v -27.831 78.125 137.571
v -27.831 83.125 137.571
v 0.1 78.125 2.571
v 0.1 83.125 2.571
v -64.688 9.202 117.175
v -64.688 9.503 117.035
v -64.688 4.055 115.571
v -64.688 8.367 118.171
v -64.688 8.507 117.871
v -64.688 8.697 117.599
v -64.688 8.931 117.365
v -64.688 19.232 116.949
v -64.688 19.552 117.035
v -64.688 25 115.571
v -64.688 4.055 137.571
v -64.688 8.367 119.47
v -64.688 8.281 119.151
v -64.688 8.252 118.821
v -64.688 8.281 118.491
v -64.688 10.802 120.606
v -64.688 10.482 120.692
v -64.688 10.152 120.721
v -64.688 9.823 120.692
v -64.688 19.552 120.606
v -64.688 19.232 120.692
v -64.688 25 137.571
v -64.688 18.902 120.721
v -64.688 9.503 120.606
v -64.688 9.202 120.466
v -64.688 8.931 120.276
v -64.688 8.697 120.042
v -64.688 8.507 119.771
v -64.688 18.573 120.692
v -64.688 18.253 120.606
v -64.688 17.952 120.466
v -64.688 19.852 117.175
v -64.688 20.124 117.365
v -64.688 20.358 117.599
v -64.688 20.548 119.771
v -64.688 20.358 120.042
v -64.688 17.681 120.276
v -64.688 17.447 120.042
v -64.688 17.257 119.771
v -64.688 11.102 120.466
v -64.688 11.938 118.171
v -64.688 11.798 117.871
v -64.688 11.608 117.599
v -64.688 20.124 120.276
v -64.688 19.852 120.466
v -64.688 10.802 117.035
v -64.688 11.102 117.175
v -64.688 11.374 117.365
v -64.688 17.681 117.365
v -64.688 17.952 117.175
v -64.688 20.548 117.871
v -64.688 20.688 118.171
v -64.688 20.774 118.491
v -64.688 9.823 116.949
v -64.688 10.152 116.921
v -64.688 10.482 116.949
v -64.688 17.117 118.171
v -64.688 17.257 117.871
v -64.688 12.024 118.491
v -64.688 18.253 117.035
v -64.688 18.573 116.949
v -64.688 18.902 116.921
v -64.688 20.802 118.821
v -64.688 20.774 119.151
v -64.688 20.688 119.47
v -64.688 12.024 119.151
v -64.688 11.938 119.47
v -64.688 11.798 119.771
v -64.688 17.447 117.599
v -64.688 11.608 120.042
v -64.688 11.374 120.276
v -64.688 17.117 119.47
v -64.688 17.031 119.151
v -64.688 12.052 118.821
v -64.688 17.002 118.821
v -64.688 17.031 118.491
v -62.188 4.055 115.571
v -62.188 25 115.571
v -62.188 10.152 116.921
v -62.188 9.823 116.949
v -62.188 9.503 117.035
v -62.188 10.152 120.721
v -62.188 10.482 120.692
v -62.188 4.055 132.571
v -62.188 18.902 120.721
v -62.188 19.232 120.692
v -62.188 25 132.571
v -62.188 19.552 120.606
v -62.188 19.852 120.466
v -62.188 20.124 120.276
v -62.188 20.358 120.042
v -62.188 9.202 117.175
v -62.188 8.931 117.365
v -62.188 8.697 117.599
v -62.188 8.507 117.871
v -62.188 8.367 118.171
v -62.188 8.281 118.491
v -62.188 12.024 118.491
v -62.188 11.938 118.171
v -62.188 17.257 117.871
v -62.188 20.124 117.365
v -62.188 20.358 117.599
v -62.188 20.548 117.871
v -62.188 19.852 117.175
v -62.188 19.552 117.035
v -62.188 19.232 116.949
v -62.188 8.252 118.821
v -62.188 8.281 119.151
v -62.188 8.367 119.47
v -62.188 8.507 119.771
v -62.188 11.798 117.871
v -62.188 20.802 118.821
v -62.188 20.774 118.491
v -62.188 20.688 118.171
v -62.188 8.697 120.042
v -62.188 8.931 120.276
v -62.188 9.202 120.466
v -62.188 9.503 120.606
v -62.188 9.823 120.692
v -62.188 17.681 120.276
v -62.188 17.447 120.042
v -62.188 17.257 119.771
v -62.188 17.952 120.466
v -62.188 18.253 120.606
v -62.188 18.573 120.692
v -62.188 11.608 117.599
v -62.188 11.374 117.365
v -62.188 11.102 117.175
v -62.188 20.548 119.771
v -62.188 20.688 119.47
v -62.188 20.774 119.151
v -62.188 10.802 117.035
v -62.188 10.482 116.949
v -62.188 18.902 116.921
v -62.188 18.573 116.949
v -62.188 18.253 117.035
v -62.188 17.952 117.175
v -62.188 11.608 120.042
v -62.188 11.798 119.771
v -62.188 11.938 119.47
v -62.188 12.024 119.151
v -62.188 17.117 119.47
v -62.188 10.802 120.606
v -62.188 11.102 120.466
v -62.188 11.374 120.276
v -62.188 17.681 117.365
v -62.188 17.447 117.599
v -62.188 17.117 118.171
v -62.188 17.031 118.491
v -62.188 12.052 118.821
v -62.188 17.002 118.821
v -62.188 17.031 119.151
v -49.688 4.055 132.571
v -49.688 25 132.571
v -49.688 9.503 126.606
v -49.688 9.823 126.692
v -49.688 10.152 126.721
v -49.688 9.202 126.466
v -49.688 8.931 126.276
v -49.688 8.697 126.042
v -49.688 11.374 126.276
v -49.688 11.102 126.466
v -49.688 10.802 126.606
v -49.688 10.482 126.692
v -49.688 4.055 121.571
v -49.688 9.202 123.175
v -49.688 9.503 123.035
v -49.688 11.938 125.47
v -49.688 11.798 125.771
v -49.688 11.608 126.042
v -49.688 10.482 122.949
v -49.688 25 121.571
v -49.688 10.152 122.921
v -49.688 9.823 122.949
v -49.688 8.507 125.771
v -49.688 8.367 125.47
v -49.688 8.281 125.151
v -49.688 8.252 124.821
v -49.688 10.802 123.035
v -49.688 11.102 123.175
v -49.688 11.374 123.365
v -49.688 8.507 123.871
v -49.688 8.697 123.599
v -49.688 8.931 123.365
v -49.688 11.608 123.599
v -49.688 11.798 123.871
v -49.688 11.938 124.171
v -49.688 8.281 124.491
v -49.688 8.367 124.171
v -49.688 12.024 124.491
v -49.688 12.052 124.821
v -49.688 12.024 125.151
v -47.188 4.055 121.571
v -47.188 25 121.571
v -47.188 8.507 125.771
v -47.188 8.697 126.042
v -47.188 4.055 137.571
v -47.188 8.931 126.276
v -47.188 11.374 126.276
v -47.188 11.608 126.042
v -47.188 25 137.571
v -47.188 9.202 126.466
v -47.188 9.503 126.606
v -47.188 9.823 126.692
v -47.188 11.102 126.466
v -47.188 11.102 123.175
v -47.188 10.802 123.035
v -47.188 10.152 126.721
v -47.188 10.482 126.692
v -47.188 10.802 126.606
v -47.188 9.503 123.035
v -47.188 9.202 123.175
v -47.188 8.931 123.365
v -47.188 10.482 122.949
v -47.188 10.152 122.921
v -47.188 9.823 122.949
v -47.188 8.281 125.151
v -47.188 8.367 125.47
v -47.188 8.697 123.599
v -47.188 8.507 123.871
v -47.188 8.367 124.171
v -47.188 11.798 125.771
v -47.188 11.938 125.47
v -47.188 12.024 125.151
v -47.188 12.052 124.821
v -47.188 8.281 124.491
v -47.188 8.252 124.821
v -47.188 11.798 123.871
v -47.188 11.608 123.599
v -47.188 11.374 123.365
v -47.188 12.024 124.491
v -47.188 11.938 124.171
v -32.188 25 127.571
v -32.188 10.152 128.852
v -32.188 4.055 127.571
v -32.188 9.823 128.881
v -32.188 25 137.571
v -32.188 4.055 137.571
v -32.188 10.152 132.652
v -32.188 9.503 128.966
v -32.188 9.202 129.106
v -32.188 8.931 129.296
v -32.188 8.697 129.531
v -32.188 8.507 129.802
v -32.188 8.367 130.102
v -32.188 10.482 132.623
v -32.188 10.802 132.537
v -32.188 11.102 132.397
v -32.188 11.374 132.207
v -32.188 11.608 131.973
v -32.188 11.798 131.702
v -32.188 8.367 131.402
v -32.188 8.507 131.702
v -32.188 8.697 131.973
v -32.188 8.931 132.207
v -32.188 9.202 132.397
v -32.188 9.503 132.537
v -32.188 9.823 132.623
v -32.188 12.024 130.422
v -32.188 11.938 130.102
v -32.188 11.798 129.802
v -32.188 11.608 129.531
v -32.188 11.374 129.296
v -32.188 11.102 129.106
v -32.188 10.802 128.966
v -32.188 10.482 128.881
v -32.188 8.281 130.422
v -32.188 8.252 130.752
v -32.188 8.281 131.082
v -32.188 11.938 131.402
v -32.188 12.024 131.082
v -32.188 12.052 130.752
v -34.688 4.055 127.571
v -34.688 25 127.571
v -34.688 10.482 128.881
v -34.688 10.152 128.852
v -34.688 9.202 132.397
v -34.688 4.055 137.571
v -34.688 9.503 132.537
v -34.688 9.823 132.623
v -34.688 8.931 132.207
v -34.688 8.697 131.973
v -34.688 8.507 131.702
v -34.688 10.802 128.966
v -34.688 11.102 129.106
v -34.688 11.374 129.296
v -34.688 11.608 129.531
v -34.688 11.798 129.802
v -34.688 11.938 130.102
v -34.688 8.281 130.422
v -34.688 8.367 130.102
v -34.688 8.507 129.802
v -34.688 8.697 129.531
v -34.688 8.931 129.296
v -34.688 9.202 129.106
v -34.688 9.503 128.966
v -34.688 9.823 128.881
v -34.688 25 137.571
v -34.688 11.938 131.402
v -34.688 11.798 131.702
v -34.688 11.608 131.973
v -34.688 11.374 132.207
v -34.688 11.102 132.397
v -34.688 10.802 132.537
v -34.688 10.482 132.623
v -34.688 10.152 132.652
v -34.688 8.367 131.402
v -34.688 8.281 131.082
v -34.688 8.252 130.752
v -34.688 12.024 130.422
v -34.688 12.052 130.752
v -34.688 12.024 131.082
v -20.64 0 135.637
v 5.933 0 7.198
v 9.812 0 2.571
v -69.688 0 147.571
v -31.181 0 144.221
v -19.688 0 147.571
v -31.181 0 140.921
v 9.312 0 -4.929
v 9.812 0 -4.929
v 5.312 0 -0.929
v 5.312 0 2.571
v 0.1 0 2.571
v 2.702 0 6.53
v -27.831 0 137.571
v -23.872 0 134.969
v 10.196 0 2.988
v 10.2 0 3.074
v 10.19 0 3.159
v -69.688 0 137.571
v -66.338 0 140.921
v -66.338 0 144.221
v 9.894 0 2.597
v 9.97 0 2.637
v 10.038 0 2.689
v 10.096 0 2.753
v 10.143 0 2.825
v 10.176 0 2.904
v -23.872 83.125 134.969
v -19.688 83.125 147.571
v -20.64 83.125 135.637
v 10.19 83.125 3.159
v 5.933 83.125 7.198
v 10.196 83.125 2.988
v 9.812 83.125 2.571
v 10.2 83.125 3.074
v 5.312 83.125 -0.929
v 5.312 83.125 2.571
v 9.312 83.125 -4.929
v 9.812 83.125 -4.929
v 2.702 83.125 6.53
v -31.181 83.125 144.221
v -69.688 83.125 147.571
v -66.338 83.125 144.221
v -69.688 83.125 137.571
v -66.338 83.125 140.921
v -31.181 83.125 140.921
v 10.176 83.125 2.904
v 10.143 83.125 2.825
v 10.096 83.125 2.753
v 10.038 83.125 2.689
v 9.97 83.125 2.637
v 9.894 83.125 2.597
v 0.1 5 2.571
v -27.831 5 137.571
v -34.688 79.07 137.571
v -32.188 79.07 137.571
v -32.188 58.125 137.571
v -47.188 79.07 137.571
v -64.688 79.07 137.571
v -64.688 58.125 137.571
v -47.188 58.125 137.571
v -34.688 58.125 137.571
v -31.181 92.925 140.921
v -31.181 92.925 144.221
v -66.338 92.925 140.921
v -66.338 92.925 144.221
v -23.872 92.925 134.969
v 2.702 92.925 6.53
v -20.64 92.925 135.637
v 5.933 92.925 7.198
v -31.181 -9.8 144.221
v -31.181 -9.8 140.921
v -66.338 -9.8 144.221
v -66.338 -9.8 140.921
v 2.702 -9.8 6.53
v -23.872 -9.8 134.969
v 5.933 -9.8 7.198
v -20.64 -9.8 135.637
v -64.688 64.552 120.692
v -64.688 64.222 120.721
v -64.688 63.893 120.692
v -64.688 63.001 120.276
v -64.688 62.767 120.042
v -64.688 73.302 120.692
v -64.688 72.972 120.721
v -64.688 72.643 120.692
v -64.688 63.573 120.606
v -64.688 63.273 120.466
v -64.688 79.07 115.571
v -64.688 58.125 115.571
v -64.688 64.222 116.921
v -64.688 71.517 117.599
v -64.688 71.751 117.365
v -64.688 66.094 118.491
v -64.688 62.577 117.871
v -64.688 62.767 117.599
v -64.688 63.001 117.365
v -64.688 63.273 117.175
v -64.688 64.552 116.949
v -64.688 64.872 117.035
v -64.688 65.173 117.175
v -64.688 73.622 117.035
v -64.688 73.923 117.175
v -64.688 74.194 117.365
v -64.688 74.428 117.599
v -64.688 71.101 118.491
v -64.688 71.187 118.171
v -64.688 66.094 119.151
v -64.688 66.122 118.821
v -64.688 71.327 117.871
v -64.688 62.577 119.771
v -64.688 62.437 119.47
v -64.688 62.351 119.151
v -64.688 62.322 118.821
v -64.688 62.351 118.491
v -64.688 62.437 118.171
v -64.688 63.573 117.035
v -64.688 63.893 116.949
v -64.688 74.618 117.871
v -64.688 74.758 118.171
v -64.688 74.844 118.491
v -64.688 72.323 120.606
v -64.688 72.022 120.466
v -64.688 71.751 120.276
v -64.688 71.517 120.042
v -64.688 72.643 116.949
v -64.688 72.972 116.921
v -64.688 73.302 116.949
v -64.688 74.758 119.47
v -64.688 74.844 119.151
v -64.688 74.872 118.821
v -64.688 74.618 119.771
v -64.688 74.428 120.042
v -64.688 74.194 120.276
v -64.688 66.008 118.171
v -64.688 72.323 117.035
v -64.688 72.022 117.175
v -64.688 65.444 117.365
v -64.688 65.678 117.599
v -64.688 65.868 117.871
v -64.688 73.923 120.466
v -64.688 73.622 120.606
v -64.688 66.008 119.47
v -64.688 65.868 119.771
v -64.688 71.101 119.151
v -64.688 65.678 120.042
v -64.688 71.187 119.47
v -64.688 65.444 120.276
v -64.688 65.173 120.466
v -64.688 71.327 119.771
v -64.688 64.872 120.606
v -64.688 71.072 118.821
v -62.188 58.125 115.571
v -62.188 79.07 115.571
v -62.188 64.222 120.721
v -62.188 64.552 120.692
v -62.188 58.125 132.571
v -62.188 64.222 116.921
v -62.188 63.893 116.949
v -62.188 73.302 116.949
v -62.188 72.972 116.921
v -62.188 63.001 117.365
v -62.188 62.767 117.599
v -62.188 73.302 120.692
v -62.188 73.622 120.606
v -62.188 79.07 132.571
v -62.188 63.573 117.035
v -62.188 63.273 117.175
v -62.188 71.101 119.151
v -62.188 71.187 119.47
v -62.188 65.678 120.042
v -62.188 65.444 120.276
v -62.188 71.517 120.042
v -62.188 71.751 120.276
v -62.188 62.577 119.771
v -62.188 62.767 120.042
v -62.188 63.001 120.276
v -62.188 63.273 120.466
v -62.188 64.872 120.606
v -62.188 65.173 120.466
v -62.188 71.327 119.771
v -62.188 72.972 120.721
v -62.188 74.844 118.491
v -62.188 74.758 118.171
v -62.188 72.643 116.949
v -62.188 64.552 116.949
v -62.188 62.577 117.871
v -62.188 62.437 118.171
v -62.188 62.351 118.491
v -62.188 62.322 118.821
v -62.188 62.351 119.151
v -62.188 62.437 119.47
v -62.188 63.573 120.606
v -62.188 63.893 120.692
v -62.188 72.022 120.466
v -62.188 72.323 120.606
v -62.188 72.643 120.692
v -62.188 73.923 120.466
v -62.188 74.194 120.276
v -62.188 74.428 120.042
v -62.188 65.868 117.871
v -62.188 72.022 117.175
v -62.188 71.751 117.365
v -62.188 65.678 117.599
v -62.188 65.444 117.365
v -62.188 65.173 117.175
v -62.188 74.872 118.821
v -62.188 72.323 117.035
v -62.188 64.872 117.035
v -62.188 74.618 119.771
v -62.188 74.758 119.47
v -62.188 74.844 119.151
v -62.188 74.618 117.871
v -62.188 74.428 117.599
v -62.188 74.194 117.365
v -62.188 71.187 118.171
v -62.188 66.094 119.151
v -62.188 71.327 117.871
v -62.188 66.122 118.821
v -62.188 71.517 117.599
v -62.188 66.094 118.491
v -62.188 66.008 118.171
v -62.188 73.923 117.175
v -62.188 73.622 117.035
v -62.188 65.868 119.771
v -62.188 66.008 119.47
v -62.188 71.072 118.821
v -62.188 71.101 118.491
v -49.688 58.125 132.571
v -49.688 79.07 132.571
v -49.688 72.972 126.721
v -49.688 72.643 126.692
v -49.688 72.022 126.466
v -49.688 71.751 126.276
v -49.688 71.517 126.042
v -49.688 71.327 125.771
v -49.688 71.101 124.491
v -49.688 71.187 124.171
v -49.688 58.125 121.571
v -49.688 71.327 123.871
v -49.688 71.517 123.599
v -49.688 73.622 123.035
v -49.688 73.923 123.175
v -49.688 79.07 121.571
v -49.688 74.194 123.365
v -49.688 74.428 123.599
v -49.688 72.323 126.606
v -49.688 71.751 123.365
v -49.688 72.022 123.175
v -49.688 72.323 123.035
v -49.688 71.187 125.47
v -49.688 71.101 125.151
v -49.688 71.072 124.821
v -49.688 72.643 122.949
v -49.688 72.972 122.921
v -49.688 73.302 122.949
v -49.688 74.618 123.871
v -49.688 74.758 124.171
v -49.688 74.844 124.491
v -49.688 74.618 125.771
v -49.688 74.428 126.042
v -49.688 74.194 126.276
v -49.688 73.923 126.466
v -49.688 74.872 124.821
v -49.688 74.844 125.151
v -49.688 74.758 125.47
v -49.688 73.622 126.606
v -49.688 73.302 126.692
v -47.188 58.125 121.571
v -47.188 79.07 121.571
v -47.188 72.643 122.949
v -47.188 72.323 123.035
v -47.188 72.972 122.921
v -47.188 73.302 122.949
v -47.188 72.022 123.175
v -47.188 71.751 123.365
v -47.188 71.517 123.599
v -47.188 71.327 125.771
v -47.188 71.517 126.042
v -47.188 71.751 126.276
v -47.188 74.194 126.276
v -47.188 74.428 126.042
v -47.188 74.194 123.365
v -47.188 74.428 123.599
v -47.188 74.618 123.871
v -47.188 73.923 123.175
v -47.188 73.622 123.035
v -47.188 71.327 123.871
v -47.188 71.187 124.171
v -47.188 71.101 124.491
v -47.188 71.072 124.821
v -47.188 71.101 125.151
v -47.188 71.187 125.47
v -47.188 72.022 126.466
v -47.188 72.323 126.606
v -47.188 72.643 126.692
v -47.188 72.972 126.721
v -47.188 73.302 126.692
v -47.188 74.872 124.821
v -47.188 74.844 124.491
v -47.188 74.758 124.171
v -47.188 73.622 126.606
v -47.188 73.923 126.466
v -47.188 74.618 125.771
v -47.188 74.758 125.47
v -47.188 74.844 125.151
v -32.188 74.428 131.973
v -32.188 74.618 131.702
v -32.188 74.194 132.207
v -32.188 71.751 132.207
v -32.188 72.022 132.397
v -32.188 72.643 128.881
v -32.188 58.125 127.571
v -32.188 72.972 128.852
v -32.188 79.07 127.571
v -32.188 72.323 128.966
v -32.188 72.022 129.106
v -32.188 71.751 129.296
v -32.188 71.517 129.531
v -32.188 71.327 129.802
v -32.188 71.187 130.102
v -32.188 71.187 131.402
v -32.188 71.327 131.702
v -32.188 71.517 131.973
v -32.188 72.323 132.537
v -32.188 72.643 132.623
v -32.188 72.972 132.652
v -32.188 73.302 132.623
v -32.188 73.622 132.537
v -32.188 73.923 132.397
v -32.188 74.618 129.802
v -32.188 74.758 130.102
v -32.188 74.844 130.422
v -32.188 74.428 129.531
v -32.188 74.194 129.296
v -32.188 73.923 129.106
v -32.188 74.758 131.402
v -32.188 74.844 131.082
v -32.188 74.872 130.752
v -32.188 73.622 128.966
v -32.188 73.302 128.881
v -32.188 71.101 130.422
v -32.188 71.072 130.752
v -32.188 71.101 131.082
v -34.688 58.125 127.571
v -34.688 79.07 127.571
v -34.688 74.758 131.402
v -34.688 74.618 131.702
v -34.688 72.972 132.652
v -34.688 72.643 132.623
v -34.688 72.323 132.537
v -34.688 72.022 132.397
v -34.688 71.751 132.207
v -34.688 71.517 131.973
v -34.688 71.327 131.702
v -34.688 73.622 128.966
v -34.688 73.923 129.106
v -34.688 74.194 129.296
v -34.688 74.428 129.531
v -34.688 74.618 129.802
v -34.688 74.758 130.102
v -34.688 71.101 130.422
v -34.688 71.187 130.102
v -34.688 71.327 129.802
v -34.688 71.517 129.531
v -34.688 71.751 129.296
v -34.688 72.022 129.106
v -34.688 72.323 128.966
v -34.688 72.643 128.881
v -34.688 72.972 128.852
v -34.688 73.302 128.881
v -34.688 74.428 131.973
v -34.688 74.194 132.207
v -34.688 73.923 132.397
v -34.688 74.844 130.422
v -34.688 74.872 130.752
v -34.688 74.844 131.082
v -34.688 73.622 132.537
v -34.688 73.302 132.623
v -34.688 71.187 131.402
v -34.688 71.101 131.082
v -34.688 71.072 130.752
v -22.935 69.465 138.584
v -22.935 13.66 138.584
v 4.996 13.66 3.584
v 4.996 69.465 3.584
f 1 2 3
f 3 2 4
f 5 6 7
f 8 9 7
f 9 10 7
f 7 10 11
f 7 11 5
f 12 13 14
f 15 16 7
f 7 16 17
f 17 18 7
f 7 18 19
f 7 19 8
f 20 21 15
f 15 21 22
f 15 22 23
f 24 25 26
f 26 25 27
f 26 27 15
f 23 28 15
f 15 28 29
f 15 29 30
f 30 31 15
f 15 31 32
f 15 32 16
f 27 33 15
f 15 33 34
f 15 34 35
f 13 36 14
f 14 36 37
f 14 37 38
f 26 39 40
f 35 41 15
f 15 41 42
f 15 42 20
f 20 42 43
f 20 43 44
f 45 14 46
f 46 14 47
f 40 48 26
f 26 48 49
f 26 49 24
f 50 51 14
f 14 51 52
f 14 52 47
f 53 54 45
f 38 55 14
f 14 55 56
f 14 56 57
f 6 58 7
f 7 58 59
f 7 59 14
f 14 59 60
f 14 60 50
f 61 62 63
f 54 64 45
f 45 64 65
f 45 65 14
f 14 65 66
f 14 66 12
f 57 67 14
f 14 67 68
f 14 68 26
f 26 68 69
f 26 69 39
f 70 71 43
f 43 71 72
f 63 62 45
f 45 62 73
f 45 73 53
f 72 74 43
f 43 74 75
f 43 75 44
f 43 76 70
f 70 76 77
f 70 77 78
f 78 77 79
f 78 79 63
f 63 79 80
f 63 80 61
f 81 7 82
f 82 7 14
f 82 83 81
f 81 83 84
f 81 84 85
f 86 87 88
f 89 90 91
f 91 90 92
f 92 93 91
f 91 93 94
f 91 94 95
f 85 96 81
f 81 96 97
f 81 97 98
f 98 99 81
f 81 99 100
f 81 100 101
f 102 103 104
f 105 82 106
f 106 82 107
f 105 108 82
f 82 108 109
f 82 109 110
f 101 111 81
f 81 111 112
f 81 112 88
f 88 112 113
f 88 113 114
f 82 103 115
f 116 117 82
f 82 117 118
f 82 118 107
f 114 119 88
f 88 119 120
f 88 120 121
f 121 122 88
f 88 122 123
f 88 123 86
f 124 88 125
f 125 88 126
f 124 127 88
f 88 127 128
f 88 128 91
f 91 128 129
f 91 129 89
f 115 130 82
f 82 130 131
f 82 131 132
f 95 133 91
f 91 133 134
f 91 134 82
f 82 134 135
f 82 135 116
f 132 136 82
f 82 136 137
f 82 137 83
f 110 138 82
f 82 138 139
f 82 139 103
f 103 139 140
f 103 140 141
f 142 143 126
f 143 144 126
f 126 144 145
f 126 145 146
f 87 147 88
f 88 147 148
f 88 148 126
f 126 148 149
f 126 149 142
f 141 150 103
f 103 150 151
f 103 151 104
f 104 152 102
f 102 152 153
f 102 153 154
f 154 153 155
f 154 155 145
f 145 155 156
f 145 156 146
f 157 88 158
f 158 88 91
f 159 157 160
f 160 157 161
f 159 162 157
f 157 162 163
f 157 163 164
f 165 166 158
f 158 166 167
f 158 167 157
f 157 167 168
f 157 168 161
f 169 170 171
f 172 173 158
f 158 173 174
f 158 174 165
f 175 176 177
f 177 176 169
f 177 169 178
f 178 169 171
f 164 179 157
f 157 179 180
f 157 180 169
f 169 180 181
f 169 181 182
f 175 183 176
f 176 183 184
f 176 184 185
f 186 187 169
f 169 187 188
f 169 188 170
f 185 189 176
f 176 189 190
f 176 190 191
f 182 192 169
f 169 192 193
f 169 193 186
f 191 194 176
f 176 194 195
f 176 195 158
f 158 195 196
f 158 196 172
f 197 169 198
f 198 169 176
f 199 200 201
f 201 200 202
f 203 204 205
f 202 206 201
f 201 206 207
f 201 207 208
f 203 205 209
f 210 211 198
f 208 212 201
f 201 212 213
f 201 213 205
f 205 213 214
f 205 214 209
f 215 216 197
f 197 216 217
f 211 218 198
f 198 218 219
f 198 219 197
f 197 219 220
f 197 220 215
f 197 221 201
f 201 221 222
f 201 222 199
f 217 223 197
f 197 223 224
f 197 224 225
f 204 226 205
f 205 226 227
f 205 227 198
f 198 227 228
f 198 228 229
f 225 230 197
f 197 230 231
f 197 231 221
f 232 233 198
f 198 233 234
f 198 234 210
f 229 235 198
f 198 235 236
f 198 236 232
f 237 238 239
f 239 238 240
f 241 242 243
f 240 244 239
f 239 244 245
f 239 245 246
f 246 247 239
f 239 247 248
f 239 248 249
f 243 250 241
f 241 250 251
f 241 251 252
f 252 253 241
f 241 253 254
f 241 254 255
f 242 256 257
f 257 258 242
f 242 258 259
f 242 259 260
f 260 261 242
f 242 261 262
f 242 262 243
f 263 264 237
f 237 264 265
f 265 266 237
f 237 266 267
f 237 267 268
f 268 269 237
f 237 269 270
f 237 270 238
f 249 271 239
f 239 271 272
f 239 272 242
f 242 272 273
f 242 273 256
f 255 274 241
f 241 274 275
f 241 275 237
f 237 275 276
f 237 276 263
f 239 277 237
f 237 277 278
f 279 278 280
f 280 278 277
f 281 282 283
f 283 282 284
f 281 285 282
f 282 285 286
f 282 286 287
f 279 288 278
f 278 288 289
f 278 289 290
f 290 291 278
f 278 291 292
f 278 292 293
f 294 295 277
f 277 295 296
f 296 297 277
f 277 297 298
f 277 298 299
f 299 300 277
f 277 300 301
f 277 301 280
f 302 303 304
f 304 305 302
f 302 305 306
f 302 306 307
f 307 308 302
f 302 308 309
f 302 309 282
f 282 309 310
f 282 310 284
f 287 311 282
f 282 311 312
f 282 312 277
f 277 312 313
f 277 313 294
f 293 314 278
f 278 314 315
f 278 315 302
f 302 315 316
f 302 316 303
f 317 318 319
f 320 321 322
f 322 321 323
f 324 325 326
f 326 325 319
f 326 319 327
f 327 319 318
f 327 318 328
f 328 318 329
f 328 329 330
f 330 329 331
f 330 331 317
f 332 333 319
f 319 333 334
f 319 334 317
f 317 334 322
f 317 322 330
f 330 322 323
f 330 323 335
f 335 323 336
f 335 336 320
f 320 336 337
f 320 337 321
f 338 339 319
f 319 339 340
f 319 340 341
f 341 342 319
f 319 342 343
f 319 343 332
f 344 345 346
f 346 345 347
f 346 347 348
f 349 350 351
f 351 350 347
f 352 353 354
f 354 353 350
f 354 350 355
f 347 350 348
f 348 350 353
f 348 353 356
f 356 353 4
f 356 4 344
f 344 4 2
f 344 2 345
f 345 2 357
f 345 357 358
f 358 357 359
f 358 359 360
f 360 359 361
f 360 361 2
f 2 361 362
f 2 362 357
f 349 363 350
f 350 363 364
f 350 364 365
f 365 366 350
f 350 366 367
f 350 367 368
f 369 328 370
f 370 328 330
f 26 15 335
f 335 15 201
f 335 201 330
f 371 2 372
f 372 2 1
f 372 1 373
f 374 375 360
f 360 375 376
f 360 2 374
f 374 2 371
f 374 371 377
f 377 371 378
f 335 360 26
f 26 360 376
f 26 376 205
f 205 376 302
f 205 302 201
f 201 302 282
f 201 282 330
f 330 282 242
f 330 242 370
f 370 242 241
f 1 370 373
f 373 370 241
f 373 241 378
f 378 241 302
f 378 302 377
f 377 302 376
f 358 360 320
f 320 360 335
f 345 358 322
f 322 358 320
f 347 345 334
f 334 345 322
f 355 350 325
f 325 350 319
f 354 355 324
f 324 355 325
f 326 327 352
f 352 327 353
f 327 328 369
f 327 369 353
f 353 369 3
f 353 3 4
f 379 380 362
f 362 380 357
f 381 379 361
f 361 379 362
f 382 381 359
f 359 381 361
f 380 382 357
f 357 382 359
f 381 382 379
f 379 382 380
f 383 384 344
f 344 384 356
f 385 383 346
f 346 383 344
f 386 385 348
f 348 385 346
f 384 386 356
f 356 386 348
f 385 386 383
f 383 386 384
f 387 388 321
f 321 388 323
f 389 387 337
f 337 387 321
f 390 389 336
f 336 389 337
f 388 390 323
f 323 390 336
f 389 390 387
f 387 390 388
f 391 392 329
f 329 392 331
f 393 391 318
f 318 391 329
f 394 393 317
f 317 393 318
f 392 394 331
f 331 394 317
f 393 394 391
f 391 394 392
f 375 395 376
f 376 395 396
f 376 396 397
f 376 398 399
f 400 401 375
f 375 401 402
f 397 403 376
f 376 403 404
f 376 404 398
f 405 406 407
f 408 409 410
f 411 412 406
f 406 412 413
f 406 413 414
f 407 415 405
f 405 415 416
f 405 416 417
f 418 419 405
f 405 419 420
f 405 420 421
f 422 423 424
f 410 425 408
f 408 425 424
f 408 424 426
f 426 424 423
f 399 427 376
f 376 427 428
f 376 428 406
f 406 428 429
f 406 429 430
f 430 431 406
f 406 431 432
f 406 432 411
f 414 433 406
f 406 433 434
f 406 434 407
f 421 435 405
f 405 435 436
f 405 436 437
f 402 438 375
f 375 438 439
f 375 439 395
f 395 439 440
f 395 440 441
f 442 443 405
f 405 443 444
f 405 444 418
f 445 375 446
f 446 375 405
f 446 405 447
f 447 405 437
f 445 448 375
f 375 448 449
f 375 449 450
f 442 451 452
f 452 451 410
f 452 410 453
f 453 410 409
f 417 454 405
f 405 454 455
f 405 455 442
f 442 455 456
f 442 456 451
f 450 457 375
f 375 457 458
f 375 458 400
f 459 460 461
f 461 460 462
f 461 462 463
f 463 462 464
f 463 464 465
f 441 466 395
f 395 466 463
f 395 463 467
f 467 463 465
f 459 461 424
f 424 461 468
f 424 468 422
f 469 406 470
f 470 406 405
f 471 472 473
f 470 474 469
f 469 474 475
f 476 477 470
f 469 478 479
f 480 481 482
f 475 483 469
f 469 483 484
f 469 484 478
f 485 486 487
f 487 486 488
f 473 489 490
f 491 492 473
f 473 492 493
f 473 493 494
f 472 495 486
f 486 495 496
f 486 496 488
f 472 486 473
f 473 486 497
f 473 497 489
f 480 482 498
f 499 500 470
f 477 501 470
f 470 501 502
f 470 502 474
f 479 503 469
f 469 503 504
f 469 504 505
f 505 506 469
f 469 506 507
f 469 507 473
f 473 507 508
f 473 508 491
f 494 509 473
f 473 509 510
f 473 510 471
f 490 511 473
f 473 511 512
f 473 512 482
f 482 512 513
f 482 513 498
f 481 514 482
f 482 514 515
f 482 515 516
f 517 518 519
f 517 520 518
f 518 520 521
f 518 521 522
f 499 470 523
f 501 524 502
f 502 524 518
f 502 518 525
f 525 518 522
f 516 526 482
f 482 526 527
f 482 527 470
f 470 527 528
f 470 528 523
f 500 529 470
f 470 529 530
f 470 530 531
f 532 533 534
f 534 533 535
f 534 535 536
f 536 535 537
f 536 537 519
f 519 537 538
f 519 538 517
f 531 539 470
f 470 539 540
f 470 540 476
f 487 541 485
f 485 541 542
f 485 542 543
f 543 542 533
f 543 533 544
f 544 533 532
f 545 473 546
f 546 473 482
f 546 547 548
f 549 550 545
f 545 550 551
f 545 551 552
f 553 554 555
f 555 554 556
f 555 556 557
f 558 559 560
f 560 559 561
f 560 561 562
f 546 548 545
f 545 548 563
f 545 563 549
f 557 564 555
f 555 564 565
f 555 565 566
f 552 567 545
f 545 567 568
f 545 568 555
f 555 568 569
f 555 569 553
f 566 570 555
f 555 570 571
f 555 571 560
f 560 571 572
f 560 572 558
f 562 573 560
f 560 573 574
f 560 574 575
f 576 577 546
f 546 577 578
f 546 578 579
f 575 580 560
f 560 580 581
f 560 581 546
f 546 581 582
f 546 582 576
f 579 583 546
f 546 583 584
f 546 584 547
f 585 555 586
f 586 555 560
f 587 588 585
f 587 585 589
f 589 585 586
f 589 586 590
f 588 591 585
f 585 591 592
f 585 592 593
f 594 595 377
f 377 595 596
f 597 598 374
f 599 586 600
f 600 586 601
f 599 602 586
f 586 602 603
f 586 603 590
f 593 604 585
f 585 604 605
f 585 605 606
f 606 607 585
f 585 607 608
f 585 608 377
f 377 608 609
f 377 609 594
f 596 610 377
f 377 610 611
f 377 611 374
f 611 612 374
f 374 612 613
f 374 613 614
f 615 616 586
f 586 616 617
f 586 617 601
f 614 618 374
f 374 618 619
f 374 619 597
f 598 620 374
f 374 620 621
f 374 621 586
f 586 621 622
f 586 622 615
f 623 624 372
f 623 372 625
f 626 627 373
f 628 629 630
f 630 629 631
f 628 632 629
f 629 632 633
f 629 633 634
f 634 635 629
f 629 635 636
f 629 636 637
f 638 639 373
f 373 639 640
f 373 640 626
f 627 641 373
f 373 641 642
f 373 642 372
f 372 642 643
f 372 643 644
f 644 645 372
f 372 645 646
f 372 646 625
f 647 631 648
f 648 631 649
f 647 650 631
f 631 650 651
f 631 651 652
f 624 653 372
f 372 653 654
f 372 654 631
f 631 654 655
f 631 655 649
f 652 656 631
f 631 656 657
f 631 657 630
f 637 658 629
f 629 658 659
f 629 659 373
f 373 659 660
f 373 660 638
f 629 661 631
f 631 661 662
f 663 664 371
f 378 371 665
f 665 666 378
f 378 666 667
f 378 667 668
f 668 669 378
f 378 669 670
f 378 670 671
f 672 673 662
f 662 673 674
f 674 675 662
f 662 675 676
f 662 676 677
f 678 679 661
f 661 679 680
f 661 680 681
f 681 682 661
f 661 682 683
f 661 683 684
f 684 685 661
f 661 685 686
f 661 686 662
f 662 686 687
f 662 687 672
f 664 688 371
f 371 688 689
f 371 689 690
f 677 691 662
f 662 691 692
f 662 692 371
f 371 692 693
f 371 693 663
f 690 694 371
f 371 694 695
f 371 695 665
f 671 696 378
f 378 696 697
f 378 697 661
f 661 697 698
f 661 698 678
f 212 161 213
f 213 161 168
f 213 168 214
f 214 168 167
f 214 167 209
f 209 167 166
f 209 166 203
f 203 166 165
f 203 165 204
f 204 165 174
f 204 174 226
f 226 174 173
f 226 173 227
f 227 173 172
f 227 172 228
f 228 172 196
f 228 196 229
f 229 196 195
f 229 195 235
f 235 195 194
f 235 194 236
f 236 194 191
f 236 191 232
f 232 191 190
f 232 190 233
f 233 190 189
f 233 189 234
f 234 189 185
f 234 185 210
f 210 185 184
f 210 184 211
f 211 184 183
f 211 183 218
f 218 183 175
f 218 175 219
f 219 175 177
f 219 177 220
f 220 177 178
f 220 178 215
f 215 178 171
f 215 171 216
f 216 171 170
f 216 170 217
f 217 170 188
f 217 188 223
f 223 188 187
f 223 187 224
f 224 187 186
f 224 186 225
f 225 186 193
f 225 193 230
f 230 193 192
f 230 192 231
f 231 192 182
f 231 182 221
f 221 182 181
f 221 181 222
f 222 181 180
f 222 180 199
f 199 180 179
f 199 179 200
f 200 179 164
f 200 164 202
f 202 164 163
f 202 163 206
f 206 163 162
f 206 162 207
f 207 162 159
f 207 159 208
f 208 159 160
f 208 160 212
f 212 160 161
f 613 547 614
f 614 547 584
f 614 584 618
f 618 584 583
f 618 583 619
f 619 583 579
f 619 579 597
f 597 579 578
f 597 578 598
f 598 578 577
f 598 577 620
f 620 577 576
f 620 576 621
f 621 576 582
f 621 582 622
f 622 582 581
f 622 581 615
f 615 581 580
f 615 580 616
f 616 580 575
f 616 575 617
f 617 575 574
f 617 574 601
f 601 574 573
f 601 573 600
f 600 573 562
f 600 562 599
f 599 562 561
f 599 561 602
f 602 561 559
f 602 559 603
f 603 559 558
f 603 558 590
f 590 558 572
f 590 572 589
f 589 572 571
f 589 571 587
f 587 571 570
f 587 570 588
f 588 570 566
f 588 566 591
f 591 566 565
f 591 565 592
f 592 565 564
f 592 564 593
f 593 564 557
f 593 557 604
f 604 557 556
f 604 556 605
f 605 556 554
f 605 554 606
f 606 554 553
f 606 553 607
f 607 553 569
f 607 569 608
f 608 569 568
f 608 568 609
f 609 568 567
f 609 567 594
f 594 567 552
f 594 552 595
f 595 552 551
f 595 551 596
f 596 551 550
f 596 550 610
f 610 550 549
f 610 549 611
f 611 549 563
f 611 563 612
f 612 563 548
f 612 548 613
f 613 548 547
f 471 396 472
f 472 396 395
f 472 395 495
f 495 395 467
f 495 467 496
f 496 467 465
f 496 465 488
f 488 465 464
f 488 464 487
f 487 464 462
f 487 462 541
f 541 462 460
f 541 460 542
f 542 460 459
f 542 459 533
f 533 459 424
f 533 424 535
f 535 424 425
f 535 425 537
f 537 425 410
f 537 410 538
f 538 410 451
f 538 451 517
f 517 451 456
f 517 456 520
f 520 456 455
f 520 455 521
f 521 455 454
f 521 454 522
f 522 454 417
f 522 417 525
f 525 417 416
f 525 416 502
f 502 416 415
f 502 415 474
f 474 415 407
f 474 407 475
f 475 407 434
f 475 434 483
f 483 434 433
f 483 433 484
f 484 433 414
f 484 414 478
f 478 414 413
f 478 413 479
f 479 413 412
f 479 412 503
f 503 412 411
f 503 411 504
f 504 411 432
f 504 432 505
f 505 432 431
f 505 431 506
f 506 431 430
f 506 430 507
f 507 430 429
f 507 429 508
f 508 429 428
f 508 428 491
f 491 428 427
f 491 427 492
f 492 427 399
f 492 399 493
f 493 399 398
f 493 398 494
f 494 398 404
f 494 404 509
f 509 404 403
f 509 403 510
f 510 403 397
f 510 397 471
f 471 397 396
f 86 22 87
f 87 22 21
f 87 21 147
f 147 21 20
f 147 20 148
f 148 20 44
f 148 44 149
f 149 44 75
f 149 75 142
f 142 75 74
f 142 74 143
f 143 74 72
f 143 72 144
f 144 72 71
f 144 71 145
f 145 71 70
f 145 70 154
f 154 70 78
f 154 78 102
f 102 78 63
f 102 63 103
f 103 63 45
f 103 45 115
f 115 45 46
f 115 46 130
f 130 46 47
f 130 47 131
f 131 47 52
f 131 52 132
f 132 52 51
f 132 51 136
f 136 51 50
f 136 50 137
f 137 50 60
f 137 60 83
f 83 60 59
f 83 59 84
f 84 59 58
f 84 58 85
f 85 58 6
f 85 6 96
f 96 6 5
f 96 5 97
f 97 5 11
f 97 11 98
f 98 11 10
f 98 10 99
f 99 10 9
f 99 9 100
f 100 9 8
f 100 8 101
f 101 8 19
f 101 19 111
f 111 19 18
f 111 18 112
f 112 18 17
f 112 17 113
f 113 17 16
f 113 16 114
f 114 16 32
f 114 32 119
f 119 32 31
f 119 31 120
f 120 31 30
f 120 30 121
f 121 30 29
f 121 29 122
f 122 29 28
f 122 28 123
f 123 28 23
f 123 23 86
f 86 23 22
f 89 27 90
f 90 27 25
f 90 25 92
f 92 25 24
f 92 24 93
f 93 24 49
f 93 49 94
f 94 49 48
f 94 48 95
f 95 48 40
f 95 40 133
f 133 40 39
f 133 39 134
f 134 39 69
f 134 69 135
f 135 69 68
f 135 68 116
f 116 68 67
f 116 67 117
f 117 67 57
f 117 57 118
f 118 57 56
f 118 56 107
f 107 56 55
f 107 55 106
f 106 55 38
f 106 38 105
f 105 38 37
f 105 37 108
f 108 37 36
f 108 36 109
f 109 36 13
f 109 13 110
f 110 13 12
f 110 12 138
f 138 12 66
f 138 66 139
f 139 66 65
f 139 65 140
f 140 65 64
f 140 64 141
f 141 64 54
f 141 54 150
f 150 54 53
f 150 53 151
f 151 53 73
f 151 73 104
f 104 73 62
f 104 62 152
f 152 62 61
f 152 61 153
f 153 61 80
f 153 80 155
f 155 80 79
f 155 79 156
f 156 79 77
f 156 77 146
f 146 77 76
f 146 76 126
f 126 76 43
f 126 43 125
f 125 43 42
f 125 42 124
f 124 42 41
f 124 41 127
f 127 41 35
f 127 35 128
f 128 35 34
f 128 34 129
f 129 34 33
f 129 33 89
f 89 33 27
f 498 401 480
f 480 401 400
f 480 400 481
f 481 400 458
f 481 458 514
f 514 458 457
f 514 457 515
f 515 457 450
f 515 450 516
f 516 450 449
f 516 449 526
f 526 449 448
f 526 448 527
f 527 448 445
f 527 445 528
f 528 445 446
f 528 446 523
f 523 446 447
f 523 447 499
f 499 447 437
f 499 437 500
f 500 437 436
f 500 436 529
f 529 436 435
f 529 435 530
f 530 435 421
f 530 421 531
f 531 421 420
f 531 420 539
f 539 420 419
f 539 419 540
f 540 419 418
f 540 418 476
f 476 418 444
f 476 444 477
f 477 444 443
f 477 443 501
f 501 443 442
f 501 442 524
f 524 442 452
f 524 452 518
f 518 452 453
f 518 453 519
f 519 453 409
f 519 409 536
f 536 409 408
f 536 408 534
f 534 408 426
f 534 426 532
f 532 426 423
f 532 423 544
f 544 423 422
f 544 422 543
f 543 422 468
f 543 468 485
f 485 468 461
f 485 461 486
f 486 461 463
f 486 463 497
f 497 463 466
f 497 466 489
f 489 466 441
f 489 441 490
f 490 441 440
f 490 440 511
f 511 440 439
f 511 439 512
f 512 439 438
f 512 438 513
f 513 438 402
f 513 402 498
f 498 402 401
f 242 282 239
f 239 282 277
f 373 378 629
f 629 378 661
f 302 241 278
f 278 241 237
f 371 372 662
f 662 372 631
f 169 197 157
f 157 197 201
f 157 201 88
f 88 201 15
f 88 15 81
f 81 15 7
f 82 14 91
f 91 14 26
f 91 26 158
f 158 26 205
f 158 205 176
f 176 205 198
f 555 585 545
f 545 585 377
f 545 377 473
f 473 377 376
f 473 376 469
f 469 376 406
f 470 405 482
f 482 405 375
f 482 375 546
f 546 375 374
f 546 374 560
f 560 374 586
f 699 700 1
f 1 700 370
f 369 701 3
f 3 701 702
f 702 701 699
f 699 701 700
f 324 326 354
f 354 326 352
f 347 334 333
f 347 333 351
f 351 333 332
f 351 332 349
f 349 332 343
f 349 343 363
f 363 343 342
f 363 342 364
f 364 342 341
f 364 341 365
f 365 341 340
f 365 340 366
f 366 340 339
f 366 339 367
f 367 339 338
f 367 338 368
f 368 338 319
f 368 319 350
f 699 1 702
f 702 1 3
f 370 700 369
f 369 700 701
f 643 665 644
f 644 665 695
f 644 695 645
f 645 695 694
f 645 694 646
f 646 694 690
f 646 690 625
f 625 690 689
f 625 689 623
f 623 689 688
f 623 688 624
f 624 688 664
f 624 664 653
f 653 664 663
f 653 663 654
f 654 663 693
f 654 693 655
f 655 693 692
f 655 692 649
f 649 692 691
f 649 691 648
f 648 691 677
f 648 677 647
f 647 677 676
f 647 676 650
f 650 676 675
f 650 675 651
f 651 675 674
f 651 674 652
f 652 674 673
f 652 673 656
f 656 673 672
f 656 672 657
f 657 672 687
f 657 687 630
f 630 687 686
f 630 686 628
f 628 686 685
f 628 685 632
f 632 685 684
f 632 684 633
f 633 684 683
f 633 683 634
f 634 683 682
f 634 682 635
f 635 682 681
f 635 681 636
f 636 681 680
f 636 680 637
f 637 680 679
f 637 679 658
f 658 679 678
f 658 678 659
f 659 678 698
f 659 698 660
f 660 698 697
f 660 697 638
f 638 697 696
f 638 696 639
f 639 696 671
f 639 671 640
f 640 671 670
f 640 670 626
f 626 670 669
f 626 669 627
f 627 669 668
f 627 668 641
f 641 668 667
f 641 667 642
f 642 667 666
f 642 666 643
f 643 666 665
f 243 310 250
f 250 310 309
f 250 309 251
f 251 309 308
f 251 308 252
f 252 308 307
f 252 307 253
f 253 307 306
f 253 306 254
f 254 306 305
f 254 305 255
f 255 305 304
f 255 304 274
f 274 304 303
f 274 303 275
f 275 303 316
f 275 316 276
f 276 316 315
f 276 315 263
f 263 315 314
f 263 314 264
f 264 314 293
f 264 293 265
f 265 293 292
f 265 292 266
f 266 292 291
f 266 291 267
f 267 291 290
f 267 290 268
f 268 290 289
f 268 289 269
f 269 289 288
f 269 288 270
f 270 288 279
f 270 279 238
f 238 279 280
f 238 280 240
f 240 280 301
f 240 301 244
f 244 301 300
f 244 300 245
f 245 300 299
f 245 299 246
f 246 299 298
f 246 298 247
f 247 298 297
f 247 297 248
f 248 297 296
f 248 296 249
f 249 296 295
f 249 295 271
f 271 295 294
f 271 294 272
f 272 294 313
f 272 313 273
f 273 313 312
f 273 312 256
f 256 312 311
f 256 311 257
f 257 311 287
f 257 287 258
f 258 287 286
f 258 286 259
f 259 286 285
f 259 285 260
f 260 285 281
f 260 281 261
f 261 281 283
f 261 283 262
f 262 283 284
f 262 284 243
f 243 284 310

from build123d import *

# Parameters (mm, degrees)
BOSS_EXTRUDE1_DEPTH = 83.125
SKETCH2_W           = 35.157177314
SKETCH2_H           = 3.3
BOSS_EXTRUDE2_DEPTH = 9.8
SKETCH7_W           = 2.5
SKETCH7_H           = 10
BOSS_EXTRUDE4_DEPTH = 83.125
CUT_EXTRUDE5_REACH  = 186.424
SKETCH8_R           = 1.9
CUT_EXTRUDE6_REACH  = 191.835
SKETCH9_R           = 1.9
CUT_EXTRUDE9_REACH  = 182.103
SKETCH12_R          = 1.9
CUT_EXTRUDE7_REACH  = 191.835
SKETCH10_W          = 33.125
SKETCH10_H          = 22
SKETCH10_W_2        = 4.055
SKETCH11_W          = 53.125
SKETCH11_H          = 124.429937858
SKETCH11_H_2        = 13.429202889
CUT_EXTRUDE8_DEPTH  = 5
CHAMFER1_SIZE       = 4
FILLET1_R           = 0.5
CHAMFER2_SIZE       = 10
CHAMFER2_SIZE_2     = 5.773502692


with BuildPart() as part:
    # Sketch1 → Boss-Extrude1 (new body)
    with BuildSketch(Plane(origin=(0, 0, 0), x_dir=(-1, 0, 0), z_dir=(0, 1, 0))):
        Polygon((19.688093764, 147.570616058), (-10.311906236, 2.570616058), (-9.811906236, 2.570616058), (-9.811906236, -4.929383942), (-5.311906236, -4.929383942), (-5.311906236, 2.570616058), (-0.100118033, 2.570616058), (27.83091645, 137.570616058), (69.688093764, 137.570616058), (69.688093764, 147.570616058), align=None)
    extrude(amount=BOSS_EXTRUDE1_DEPTH)

    # Sketch2 → Boss-Extrude2 (add)
    with BuildSketch(Plane(origin=(0, 83.125, 0), x_dir=(-1, 0, 0), z_dir=(0, 1, 0))):
        Polygon((23.871665271, 134.968822427), (-2.701911664, 6.529867237), (-5.933471049, 7.198465731), (20.640105887, 135.63742092), align=None)
        with Locations((48.759505107, 142.570616058)):
            Rectangle(SKETCH2_W, SKETCH2_H)
    boss_extrude2 = extrude(amount=BOSS_EXTRUDE2_DEPTH)

    # Mirror1: Boss-Extrude2 across plane
    add(boss_extrude2.mirror(Plane.ZX.offset(41.5625)))

    # Sketch7 → Boss-Extrude4 (add)
    with BuildSketch(Plane(origin=(0, 83.125, 0), x_dir=(-1, 0, 0), z_dir=(0, 1, 0))):
        Polygon((64.688093764, 137.570616058), (47.188093764, 137.570616058), (47.188093764, 121.570616058), (49.688093764, 121.570616058), (49.688093764, 132.570616058), (62.188093764, 132.570616058), (62.188093764, 115.570616058), (64.688093764, 115.570616058), align=None)
        with Locations((33.438093764, 132.570616058)):
            Rectangle(SKETCH7_W, SKETCH7_H)
    extrude(amount=-BOSS_EXTRUDE4_DEPTH)

    # Sketch8 → Cut-Extrude5 (cut, up to next)
    with BuildSketch(Plane(origin=(-49.688093764, 0, 0), x_dir=(0, -1, 0), z_dir=(-1, 0, 0)), mode=Mode.PRIVATE) as cut_extrude5_sk1:
        with Locations(Location((-72.9725, 124.820616058, 0), (0, 0, 90))):
            Circle(SKETCH8_R)
    cut_extrude5_tool1 = extrude(cut_extrude5_sk1.sketch, amount=-CUT_EXTRUDE5_REACH, mode=Mode.PRIVATE) & part.part
    # Sketch8 → Cut-Extrude5 (cut, up to next)
    with BuildSketch(Plane(origin=(-49.688093764, 0, 0), x_dir=(0, -1, 0), z_dir=(-1, 0, 0)), mode=Mode.PRIVATE) as cut_extrude5_sk2:
        with Locations(Location((-10.1525, 124.820616058, 0), (0, 0, 90))):
            Circle(SKETCH8_R)
    cut_extrude5_tool2 = extrude(cut_extrude5_sk2.sketch, amount=-CUT_EXTRUDE5_REACH, mode=Mode.PRIVATE) & part.part
    add(cut_extrude5_tool1.solids().sort_by_distance((-49.688094, 72.9725, 124.820616))[0], mode=Mode.SUBTRACT)
    add(cut_extrude5_tool2.solids().sort_by_distance((-49.688094, 10.1525, 124.820616))[0], mode=Mode.SUBTRACT)

    # Sketch9 → Cut-Extrude6 (cut, up to next)
    with BuildSketch(Plane(origin=(-64.688093764, 0, 0), x_dir=(0, -1, 0), z_dir=(-1, 0, 0)), mode=Mode.PRIVATE) as cut_extrude6_sk1:
        with Locations(Location((-72.9725, 118.820616058, 0), (0, 0, 90))):
            Circle(SKETCH9_R)
    cut_extrude6_tool1 = extrude(cut_extrude6_sk1.sketch, amount=-CUT_EXTRUDE6_REACH, mode=Mode.PRIVATE) & part.part
    # Sketch9 → Cut-Extrude6 (cut, up to next)
    with BuildSketch(Plane(origin=(-64.688093764, 0, 0), x_dir=(0, -1, 0), z_dir=(-1, 0, 0)), mode=Mode.PRIVATE) as cut_extrude6_sk2:
        with Locations(Location((-18.9025, 118.820616058, 0), (0, 0, 90))):
            Circle(SKETCH9_R)
    cut_extrude6_tool2 = extrude(cut_extrude6_sk2.sketch, amount=-CUT_EXTRUDE6_REACH, mode=Mode.PRIVATE) & part.part
    # Sketch9 → Cut-Extrude6 (cut, up to next)
    with BuildSketch(Plane(origin=(-64.688093764, 0, 0), x_dir=(0, -1, 0), z_dir=(-1, 0, 0)), mode=Mode.PRIVATE) as cut_extrude6_sk3:
        with Locations(Location((-10.1525, 118.820616058, 0), (0, 0, 90))):
            Circle(SKETCH9_R)
    cut_extrude6_tool3 = extrude(cut_extrude6_sk3.sketch, amount=-CUT_EXTRUDE6_REACH, mode=Mode.PRIVATE) & part.part
    # Sketch9 → Cut-Extrude6 (cut, up to next)
    with BuildSketch(Plane(origin=(-64.688093764, 0, 0), x_dir=(0, -1, 0), z_dir=(-1, 0, 0)), mode=Mode.PRIVATE) as cut_extrude6_sk4:
        with Locations(Location((-64.2225, 118.820616058, 0), (0, 0, 90))):
            Circle(SKETCH9_R)
    cut_extrude6_tool4 = extrude(cut_extrude6_sk4.sketch, amount=-CUT_EXTRUDE6_REACH, mode=Mode.PRIVATE) & part.part
    add(cut_extrude6_tool1.solids().sort_by_distance((-64.688094, 72.9725, 118.820616))[0], mode=Mode.SUBTRACT)
    add(cut_extrude6_tool2.solids().sort_by_distance((-64.688094, 18.9025, 118.820616))[0], mode=Mode.SUBTRACT)
    add(cut_extrude6_tool3.solids().sort_by_distance((-64.688094, 10.1525, 118.820616))[0], mode=Mode.SUBTRACT)
    add(cut_extrude6_tool4.solids().sort_by_distance((-64.688094, 64.2225, 118.820616))[0], mode=Mode.SUBTRACT)

    # Sketch12 → Cut-Extrude9 (cut, up to next)
    with BuildSketch(Plane(origin=(-34.688093764, 0, 0), x_dir=(0, -1, 0), z_dir=(-1, 0, 0)), mode=Mode.PRIVATE) as cut_extrude9_sk1:
        with Locations(Location((-72.9725, 130.751875225, 0), (0, 0, 90))):
            Circle(SKETCH12_R)
    cut_extrude9_tool1 = extrude(cut_extrude9_sk1.sketch, amount=-CUT_EXTRUDE9_REACH, mode=Mode.PRIVATE) & part.part
    # Sketch12 → Cut-Extrude9 (cut, up to next)
    with BuildSketch(Plane(origin=(-34.688093764, 0, 0), x_dir=(0, -1, 0), z_dir=(-1, 0, 0)), mode=Mode.PRIVATE) as cut_extrude9_sk2:
        with Locations(Location((-10.1525, 130.751875225, 0), (0, 0, 90))):
            Circle(SKETCH12_R)
    cut_extrude9_tool2 = extrude(cut_extrude9_sk2.sketch, amount=-CUT_EXTRUDE9_REACH, mode=Mode.PRIVATE) & part.part
    add(cut_extrude9_tool1.solids().sort_by_distance((-34.688094, 72.9725, 130.751875))[0], mode=Mode.SUBTRACT)
    add(cut_extrude9_tool2.solids().sort_by_distance((-34.688094, 10.1525, 130.751875))[0], mode=Mode.SUBTRACT)

    # Cut-Extrude7: up to this face of the body (flat: up to its plane)
    cut_extrude7_end = Plane(part.part.faces().sort_by_distance((-32.188093764, 41.5625, 132.621636181))[0])
    # Sketch10 → Cut-Extrude7 (cut, up to the picked face)
    with BuildSketch(Plane(origin=(-64.688093764, 0, 0), x_dir=(0, -1, 0), z_dir=(-1, 0, 0)), mode=Mode.PRIVATE) as cut_extrude7_sk1:
        with Locations((-41.5625, 126.570616058)):
            Rectangle(SKETCH10_W, SKETCH10_H)
    cut_extrude7_tool1 = split(extrude(cut_extrude7_sk1.sketch, amount=-CUT_EXTRUDE7_REACH, mode=Mode.PRIVATE), bisect_by=cut_extrude7_end, keep=Keep.BOTH, mode=Mode.PRIVATE)
    # Sketch10 → Cut-Extrude7 (cut, up to the picked face)
    with BuildSketch(Plane(origin=(-64.688093764, 0, 0), x_dir=(0, -1, 0), z_dir=(-1, 0, 0)), mode=Mode.PRIVATE) as cut_extrude7_sk2:
        with Locations((-81.0975, 126.570616058)):
            Rectangle(SKETCH10_W_2, SKETCH10_H)
    cut_extrude7_tool2 = split(extrude(cut_extrude7_sk2.sketch, amount=-CUT_EXTRUDE7_REACH, mode=Mode.PRIVATE), bisect_by=cut_extrude7_end, keep=Keep.BOTH, mode=Mode.PRIVATE)
    # Sketch10 → Cut-Extrude7 (cut, up to the picked face)
    with BuildSketch(Plane(origin=(-64.688093764, 0, 0), x_dir=(0, -1, 0), z_dir=(-1, 0, 0)), mode=Mode.PRIVATE) as cut_extrude7_sk3:
        with Locations((-2.0275, 126.570616058)):
            Rectangle(SKETCH10_W_2, SKETCH10_H)
    cut_extrude7_tool3 = split(extrude(cut_extrude7_sk3.sketch, amount=-CUT_EXTRUDE7_REACH, mode=Mode.PRIVATE), bisect_by=cut_extrude7_end, keep=Keep.BOTH, mode=Mode.PRIVATE)
    add(cut_extrude7_tool1.solids().sort_by(Axis((-64.688094, 41.5625, 126.570616), (1, 0, 0)))[0], mode=Mode.SUBTRACT)
    add(cut_extrude7_tool2.solids().sort_by(Axis((-64.688094, 81.0975, 126.570616), (1, 0, 0)))[0], mode=Mode.SUBTRACT)
    add(cut_extrude7_tool3.solids().sort_by(Axis((-64.688094, 2.0275, 126.570616), (1, 0, 0)))[0], mode=Mode.SUBTRACT)

    # Sketch11 → Cut-Extrude8 (cut)
    with BuildSketch(Plane(origin=(0.60602789, 0, 0.125385081), x_dir=(0, -1, 0), z_dir=(-0.9792604195071029, 0, -0.20260560403595218))):
        with Locations((-41.5625, 78.141189903)):
            Rectangle(SKETCH11_W, SKETCH11_H)
        with Locations((-41.5625, 9.21161953)):
            Rectangle(SKETCH11_W, SKETCH11_H_2)
    extrude(amount=-CUT_EXTRUDE8_DEPTH, mode=Mode.SUBTRACT)

    # Chamfer1
    chamfer1_edges = [part.edges().sort_by_distance(p)[0] for p in [
        (5.311906236, 41.5625, -4.929383942),
    ]]
    chamfer(chamfer1_edges, length=CHAMFER1_SIZE)

    # Fillet1
    # the kernel refuses this fillet: 0.5 mm, written as the material it takes off along each edge
    with BuildSketch(Plane(origin=(10.311906236, -1.502988145, 2.570616058), x_dir=(-1, 0, 0), z_dir=(0, 1, 0))) as fillet1_piece_1:
        with BuildLine():
            CenterArc((0.611435738, 0.487423918), FILLET1_R, 168.310630825, 88.811624366)
            Line((0.121805528, 0.58872672), (0.112012924, 0.590752776))
            Line((0.112012924, 0.590752776), (-0.009792604, 0.002026056))
            Line((-0.009792604, 0.002026056), (0, -0.01))
            ThreePointArc((0, -0.01), (0.25, -0.01), (0.497771285, -0.009748478))
            Line((0.497771285, -0.009748478), (0.5, 0))
        make_face()
    extrude(amount=86.13097629, mode=Mode.SUBTRACT)

    # Chamfer2
    # the kernel refuses this chamfer: 10, 5.773502692 mm, written as the material it takes off along each edge
    with BuildSketch(Plane(origin=(0.100118033, 68.125, 2.570616058), x_dir=(-0.018925936601608705, 0.9998132206222079, -0.003915711021022488), z_dir=(-0.20260560403595218, 0, 0.9792604195071029))) as chamfer2_piece_1_section:
        Polygon((CHAMFER2_SIZE * 0.999813220622, -CHAMFER2_SIZE * 0.0193267656127), (-CHAMFER2_SIZE_2 * 0.0193267656124, -CHAMFER2_SIZE_2 * 0.999813220604), (0, 0), align=None)
    chamfer2_piece_1 = extrude(amount=137.859140746, mode=Mode.PRIVATE)
    chamfer2_piece_1 = split(chamfer2_piece_1, bisect_by=Plane(origin=(4.844173208, 72.725966315, 4.319504201), z_dir=(-0.9792604195071029, 0, -0.20260560403595218)), keep=Keep.TOP, mode=Mode.PRIVATE)
    add(chamfer2_piece_1, mode=Mode.SUBTRACT)
    with BuildSketch(Plane(origin=(0.100118033, 15, 2.570616058), x_dir=(-0.01892593660160869, -0.9998132206222079, -0.0039157110210224855), z_dir=(-0.20260560403595218, 0, 0.9792604195071029))) as chamfer2_piece_2_section:
        Polygon((CHAMFER2_SIZE * 0.999813220622, CHAMFER2_SIZE * 0.0193267656127), (-CHAMFER2_SIZE_2 * 0.0193267656124, CHAMFER2_SIZE_2 * 0.999813220604), (0, 0), align=None)
    chamfer2_piece_2 = extrude(amount=137.859140746, mode=Mode.PRIVATE)
    chamfer2_piece_2 = split(chamfer2_piece_2, bisect_by=Plane(origin=(4.844173208, 10.399033685, 4.319504201), z_dir=(-0.9792604195071029, 0, -0.20260560403595218)), keep=Keep.TOP, mode=Mode.PRIVATE)
    add(chamfer2_piece_2, mode=Mode.SUBTRACT)


solid = part.part
